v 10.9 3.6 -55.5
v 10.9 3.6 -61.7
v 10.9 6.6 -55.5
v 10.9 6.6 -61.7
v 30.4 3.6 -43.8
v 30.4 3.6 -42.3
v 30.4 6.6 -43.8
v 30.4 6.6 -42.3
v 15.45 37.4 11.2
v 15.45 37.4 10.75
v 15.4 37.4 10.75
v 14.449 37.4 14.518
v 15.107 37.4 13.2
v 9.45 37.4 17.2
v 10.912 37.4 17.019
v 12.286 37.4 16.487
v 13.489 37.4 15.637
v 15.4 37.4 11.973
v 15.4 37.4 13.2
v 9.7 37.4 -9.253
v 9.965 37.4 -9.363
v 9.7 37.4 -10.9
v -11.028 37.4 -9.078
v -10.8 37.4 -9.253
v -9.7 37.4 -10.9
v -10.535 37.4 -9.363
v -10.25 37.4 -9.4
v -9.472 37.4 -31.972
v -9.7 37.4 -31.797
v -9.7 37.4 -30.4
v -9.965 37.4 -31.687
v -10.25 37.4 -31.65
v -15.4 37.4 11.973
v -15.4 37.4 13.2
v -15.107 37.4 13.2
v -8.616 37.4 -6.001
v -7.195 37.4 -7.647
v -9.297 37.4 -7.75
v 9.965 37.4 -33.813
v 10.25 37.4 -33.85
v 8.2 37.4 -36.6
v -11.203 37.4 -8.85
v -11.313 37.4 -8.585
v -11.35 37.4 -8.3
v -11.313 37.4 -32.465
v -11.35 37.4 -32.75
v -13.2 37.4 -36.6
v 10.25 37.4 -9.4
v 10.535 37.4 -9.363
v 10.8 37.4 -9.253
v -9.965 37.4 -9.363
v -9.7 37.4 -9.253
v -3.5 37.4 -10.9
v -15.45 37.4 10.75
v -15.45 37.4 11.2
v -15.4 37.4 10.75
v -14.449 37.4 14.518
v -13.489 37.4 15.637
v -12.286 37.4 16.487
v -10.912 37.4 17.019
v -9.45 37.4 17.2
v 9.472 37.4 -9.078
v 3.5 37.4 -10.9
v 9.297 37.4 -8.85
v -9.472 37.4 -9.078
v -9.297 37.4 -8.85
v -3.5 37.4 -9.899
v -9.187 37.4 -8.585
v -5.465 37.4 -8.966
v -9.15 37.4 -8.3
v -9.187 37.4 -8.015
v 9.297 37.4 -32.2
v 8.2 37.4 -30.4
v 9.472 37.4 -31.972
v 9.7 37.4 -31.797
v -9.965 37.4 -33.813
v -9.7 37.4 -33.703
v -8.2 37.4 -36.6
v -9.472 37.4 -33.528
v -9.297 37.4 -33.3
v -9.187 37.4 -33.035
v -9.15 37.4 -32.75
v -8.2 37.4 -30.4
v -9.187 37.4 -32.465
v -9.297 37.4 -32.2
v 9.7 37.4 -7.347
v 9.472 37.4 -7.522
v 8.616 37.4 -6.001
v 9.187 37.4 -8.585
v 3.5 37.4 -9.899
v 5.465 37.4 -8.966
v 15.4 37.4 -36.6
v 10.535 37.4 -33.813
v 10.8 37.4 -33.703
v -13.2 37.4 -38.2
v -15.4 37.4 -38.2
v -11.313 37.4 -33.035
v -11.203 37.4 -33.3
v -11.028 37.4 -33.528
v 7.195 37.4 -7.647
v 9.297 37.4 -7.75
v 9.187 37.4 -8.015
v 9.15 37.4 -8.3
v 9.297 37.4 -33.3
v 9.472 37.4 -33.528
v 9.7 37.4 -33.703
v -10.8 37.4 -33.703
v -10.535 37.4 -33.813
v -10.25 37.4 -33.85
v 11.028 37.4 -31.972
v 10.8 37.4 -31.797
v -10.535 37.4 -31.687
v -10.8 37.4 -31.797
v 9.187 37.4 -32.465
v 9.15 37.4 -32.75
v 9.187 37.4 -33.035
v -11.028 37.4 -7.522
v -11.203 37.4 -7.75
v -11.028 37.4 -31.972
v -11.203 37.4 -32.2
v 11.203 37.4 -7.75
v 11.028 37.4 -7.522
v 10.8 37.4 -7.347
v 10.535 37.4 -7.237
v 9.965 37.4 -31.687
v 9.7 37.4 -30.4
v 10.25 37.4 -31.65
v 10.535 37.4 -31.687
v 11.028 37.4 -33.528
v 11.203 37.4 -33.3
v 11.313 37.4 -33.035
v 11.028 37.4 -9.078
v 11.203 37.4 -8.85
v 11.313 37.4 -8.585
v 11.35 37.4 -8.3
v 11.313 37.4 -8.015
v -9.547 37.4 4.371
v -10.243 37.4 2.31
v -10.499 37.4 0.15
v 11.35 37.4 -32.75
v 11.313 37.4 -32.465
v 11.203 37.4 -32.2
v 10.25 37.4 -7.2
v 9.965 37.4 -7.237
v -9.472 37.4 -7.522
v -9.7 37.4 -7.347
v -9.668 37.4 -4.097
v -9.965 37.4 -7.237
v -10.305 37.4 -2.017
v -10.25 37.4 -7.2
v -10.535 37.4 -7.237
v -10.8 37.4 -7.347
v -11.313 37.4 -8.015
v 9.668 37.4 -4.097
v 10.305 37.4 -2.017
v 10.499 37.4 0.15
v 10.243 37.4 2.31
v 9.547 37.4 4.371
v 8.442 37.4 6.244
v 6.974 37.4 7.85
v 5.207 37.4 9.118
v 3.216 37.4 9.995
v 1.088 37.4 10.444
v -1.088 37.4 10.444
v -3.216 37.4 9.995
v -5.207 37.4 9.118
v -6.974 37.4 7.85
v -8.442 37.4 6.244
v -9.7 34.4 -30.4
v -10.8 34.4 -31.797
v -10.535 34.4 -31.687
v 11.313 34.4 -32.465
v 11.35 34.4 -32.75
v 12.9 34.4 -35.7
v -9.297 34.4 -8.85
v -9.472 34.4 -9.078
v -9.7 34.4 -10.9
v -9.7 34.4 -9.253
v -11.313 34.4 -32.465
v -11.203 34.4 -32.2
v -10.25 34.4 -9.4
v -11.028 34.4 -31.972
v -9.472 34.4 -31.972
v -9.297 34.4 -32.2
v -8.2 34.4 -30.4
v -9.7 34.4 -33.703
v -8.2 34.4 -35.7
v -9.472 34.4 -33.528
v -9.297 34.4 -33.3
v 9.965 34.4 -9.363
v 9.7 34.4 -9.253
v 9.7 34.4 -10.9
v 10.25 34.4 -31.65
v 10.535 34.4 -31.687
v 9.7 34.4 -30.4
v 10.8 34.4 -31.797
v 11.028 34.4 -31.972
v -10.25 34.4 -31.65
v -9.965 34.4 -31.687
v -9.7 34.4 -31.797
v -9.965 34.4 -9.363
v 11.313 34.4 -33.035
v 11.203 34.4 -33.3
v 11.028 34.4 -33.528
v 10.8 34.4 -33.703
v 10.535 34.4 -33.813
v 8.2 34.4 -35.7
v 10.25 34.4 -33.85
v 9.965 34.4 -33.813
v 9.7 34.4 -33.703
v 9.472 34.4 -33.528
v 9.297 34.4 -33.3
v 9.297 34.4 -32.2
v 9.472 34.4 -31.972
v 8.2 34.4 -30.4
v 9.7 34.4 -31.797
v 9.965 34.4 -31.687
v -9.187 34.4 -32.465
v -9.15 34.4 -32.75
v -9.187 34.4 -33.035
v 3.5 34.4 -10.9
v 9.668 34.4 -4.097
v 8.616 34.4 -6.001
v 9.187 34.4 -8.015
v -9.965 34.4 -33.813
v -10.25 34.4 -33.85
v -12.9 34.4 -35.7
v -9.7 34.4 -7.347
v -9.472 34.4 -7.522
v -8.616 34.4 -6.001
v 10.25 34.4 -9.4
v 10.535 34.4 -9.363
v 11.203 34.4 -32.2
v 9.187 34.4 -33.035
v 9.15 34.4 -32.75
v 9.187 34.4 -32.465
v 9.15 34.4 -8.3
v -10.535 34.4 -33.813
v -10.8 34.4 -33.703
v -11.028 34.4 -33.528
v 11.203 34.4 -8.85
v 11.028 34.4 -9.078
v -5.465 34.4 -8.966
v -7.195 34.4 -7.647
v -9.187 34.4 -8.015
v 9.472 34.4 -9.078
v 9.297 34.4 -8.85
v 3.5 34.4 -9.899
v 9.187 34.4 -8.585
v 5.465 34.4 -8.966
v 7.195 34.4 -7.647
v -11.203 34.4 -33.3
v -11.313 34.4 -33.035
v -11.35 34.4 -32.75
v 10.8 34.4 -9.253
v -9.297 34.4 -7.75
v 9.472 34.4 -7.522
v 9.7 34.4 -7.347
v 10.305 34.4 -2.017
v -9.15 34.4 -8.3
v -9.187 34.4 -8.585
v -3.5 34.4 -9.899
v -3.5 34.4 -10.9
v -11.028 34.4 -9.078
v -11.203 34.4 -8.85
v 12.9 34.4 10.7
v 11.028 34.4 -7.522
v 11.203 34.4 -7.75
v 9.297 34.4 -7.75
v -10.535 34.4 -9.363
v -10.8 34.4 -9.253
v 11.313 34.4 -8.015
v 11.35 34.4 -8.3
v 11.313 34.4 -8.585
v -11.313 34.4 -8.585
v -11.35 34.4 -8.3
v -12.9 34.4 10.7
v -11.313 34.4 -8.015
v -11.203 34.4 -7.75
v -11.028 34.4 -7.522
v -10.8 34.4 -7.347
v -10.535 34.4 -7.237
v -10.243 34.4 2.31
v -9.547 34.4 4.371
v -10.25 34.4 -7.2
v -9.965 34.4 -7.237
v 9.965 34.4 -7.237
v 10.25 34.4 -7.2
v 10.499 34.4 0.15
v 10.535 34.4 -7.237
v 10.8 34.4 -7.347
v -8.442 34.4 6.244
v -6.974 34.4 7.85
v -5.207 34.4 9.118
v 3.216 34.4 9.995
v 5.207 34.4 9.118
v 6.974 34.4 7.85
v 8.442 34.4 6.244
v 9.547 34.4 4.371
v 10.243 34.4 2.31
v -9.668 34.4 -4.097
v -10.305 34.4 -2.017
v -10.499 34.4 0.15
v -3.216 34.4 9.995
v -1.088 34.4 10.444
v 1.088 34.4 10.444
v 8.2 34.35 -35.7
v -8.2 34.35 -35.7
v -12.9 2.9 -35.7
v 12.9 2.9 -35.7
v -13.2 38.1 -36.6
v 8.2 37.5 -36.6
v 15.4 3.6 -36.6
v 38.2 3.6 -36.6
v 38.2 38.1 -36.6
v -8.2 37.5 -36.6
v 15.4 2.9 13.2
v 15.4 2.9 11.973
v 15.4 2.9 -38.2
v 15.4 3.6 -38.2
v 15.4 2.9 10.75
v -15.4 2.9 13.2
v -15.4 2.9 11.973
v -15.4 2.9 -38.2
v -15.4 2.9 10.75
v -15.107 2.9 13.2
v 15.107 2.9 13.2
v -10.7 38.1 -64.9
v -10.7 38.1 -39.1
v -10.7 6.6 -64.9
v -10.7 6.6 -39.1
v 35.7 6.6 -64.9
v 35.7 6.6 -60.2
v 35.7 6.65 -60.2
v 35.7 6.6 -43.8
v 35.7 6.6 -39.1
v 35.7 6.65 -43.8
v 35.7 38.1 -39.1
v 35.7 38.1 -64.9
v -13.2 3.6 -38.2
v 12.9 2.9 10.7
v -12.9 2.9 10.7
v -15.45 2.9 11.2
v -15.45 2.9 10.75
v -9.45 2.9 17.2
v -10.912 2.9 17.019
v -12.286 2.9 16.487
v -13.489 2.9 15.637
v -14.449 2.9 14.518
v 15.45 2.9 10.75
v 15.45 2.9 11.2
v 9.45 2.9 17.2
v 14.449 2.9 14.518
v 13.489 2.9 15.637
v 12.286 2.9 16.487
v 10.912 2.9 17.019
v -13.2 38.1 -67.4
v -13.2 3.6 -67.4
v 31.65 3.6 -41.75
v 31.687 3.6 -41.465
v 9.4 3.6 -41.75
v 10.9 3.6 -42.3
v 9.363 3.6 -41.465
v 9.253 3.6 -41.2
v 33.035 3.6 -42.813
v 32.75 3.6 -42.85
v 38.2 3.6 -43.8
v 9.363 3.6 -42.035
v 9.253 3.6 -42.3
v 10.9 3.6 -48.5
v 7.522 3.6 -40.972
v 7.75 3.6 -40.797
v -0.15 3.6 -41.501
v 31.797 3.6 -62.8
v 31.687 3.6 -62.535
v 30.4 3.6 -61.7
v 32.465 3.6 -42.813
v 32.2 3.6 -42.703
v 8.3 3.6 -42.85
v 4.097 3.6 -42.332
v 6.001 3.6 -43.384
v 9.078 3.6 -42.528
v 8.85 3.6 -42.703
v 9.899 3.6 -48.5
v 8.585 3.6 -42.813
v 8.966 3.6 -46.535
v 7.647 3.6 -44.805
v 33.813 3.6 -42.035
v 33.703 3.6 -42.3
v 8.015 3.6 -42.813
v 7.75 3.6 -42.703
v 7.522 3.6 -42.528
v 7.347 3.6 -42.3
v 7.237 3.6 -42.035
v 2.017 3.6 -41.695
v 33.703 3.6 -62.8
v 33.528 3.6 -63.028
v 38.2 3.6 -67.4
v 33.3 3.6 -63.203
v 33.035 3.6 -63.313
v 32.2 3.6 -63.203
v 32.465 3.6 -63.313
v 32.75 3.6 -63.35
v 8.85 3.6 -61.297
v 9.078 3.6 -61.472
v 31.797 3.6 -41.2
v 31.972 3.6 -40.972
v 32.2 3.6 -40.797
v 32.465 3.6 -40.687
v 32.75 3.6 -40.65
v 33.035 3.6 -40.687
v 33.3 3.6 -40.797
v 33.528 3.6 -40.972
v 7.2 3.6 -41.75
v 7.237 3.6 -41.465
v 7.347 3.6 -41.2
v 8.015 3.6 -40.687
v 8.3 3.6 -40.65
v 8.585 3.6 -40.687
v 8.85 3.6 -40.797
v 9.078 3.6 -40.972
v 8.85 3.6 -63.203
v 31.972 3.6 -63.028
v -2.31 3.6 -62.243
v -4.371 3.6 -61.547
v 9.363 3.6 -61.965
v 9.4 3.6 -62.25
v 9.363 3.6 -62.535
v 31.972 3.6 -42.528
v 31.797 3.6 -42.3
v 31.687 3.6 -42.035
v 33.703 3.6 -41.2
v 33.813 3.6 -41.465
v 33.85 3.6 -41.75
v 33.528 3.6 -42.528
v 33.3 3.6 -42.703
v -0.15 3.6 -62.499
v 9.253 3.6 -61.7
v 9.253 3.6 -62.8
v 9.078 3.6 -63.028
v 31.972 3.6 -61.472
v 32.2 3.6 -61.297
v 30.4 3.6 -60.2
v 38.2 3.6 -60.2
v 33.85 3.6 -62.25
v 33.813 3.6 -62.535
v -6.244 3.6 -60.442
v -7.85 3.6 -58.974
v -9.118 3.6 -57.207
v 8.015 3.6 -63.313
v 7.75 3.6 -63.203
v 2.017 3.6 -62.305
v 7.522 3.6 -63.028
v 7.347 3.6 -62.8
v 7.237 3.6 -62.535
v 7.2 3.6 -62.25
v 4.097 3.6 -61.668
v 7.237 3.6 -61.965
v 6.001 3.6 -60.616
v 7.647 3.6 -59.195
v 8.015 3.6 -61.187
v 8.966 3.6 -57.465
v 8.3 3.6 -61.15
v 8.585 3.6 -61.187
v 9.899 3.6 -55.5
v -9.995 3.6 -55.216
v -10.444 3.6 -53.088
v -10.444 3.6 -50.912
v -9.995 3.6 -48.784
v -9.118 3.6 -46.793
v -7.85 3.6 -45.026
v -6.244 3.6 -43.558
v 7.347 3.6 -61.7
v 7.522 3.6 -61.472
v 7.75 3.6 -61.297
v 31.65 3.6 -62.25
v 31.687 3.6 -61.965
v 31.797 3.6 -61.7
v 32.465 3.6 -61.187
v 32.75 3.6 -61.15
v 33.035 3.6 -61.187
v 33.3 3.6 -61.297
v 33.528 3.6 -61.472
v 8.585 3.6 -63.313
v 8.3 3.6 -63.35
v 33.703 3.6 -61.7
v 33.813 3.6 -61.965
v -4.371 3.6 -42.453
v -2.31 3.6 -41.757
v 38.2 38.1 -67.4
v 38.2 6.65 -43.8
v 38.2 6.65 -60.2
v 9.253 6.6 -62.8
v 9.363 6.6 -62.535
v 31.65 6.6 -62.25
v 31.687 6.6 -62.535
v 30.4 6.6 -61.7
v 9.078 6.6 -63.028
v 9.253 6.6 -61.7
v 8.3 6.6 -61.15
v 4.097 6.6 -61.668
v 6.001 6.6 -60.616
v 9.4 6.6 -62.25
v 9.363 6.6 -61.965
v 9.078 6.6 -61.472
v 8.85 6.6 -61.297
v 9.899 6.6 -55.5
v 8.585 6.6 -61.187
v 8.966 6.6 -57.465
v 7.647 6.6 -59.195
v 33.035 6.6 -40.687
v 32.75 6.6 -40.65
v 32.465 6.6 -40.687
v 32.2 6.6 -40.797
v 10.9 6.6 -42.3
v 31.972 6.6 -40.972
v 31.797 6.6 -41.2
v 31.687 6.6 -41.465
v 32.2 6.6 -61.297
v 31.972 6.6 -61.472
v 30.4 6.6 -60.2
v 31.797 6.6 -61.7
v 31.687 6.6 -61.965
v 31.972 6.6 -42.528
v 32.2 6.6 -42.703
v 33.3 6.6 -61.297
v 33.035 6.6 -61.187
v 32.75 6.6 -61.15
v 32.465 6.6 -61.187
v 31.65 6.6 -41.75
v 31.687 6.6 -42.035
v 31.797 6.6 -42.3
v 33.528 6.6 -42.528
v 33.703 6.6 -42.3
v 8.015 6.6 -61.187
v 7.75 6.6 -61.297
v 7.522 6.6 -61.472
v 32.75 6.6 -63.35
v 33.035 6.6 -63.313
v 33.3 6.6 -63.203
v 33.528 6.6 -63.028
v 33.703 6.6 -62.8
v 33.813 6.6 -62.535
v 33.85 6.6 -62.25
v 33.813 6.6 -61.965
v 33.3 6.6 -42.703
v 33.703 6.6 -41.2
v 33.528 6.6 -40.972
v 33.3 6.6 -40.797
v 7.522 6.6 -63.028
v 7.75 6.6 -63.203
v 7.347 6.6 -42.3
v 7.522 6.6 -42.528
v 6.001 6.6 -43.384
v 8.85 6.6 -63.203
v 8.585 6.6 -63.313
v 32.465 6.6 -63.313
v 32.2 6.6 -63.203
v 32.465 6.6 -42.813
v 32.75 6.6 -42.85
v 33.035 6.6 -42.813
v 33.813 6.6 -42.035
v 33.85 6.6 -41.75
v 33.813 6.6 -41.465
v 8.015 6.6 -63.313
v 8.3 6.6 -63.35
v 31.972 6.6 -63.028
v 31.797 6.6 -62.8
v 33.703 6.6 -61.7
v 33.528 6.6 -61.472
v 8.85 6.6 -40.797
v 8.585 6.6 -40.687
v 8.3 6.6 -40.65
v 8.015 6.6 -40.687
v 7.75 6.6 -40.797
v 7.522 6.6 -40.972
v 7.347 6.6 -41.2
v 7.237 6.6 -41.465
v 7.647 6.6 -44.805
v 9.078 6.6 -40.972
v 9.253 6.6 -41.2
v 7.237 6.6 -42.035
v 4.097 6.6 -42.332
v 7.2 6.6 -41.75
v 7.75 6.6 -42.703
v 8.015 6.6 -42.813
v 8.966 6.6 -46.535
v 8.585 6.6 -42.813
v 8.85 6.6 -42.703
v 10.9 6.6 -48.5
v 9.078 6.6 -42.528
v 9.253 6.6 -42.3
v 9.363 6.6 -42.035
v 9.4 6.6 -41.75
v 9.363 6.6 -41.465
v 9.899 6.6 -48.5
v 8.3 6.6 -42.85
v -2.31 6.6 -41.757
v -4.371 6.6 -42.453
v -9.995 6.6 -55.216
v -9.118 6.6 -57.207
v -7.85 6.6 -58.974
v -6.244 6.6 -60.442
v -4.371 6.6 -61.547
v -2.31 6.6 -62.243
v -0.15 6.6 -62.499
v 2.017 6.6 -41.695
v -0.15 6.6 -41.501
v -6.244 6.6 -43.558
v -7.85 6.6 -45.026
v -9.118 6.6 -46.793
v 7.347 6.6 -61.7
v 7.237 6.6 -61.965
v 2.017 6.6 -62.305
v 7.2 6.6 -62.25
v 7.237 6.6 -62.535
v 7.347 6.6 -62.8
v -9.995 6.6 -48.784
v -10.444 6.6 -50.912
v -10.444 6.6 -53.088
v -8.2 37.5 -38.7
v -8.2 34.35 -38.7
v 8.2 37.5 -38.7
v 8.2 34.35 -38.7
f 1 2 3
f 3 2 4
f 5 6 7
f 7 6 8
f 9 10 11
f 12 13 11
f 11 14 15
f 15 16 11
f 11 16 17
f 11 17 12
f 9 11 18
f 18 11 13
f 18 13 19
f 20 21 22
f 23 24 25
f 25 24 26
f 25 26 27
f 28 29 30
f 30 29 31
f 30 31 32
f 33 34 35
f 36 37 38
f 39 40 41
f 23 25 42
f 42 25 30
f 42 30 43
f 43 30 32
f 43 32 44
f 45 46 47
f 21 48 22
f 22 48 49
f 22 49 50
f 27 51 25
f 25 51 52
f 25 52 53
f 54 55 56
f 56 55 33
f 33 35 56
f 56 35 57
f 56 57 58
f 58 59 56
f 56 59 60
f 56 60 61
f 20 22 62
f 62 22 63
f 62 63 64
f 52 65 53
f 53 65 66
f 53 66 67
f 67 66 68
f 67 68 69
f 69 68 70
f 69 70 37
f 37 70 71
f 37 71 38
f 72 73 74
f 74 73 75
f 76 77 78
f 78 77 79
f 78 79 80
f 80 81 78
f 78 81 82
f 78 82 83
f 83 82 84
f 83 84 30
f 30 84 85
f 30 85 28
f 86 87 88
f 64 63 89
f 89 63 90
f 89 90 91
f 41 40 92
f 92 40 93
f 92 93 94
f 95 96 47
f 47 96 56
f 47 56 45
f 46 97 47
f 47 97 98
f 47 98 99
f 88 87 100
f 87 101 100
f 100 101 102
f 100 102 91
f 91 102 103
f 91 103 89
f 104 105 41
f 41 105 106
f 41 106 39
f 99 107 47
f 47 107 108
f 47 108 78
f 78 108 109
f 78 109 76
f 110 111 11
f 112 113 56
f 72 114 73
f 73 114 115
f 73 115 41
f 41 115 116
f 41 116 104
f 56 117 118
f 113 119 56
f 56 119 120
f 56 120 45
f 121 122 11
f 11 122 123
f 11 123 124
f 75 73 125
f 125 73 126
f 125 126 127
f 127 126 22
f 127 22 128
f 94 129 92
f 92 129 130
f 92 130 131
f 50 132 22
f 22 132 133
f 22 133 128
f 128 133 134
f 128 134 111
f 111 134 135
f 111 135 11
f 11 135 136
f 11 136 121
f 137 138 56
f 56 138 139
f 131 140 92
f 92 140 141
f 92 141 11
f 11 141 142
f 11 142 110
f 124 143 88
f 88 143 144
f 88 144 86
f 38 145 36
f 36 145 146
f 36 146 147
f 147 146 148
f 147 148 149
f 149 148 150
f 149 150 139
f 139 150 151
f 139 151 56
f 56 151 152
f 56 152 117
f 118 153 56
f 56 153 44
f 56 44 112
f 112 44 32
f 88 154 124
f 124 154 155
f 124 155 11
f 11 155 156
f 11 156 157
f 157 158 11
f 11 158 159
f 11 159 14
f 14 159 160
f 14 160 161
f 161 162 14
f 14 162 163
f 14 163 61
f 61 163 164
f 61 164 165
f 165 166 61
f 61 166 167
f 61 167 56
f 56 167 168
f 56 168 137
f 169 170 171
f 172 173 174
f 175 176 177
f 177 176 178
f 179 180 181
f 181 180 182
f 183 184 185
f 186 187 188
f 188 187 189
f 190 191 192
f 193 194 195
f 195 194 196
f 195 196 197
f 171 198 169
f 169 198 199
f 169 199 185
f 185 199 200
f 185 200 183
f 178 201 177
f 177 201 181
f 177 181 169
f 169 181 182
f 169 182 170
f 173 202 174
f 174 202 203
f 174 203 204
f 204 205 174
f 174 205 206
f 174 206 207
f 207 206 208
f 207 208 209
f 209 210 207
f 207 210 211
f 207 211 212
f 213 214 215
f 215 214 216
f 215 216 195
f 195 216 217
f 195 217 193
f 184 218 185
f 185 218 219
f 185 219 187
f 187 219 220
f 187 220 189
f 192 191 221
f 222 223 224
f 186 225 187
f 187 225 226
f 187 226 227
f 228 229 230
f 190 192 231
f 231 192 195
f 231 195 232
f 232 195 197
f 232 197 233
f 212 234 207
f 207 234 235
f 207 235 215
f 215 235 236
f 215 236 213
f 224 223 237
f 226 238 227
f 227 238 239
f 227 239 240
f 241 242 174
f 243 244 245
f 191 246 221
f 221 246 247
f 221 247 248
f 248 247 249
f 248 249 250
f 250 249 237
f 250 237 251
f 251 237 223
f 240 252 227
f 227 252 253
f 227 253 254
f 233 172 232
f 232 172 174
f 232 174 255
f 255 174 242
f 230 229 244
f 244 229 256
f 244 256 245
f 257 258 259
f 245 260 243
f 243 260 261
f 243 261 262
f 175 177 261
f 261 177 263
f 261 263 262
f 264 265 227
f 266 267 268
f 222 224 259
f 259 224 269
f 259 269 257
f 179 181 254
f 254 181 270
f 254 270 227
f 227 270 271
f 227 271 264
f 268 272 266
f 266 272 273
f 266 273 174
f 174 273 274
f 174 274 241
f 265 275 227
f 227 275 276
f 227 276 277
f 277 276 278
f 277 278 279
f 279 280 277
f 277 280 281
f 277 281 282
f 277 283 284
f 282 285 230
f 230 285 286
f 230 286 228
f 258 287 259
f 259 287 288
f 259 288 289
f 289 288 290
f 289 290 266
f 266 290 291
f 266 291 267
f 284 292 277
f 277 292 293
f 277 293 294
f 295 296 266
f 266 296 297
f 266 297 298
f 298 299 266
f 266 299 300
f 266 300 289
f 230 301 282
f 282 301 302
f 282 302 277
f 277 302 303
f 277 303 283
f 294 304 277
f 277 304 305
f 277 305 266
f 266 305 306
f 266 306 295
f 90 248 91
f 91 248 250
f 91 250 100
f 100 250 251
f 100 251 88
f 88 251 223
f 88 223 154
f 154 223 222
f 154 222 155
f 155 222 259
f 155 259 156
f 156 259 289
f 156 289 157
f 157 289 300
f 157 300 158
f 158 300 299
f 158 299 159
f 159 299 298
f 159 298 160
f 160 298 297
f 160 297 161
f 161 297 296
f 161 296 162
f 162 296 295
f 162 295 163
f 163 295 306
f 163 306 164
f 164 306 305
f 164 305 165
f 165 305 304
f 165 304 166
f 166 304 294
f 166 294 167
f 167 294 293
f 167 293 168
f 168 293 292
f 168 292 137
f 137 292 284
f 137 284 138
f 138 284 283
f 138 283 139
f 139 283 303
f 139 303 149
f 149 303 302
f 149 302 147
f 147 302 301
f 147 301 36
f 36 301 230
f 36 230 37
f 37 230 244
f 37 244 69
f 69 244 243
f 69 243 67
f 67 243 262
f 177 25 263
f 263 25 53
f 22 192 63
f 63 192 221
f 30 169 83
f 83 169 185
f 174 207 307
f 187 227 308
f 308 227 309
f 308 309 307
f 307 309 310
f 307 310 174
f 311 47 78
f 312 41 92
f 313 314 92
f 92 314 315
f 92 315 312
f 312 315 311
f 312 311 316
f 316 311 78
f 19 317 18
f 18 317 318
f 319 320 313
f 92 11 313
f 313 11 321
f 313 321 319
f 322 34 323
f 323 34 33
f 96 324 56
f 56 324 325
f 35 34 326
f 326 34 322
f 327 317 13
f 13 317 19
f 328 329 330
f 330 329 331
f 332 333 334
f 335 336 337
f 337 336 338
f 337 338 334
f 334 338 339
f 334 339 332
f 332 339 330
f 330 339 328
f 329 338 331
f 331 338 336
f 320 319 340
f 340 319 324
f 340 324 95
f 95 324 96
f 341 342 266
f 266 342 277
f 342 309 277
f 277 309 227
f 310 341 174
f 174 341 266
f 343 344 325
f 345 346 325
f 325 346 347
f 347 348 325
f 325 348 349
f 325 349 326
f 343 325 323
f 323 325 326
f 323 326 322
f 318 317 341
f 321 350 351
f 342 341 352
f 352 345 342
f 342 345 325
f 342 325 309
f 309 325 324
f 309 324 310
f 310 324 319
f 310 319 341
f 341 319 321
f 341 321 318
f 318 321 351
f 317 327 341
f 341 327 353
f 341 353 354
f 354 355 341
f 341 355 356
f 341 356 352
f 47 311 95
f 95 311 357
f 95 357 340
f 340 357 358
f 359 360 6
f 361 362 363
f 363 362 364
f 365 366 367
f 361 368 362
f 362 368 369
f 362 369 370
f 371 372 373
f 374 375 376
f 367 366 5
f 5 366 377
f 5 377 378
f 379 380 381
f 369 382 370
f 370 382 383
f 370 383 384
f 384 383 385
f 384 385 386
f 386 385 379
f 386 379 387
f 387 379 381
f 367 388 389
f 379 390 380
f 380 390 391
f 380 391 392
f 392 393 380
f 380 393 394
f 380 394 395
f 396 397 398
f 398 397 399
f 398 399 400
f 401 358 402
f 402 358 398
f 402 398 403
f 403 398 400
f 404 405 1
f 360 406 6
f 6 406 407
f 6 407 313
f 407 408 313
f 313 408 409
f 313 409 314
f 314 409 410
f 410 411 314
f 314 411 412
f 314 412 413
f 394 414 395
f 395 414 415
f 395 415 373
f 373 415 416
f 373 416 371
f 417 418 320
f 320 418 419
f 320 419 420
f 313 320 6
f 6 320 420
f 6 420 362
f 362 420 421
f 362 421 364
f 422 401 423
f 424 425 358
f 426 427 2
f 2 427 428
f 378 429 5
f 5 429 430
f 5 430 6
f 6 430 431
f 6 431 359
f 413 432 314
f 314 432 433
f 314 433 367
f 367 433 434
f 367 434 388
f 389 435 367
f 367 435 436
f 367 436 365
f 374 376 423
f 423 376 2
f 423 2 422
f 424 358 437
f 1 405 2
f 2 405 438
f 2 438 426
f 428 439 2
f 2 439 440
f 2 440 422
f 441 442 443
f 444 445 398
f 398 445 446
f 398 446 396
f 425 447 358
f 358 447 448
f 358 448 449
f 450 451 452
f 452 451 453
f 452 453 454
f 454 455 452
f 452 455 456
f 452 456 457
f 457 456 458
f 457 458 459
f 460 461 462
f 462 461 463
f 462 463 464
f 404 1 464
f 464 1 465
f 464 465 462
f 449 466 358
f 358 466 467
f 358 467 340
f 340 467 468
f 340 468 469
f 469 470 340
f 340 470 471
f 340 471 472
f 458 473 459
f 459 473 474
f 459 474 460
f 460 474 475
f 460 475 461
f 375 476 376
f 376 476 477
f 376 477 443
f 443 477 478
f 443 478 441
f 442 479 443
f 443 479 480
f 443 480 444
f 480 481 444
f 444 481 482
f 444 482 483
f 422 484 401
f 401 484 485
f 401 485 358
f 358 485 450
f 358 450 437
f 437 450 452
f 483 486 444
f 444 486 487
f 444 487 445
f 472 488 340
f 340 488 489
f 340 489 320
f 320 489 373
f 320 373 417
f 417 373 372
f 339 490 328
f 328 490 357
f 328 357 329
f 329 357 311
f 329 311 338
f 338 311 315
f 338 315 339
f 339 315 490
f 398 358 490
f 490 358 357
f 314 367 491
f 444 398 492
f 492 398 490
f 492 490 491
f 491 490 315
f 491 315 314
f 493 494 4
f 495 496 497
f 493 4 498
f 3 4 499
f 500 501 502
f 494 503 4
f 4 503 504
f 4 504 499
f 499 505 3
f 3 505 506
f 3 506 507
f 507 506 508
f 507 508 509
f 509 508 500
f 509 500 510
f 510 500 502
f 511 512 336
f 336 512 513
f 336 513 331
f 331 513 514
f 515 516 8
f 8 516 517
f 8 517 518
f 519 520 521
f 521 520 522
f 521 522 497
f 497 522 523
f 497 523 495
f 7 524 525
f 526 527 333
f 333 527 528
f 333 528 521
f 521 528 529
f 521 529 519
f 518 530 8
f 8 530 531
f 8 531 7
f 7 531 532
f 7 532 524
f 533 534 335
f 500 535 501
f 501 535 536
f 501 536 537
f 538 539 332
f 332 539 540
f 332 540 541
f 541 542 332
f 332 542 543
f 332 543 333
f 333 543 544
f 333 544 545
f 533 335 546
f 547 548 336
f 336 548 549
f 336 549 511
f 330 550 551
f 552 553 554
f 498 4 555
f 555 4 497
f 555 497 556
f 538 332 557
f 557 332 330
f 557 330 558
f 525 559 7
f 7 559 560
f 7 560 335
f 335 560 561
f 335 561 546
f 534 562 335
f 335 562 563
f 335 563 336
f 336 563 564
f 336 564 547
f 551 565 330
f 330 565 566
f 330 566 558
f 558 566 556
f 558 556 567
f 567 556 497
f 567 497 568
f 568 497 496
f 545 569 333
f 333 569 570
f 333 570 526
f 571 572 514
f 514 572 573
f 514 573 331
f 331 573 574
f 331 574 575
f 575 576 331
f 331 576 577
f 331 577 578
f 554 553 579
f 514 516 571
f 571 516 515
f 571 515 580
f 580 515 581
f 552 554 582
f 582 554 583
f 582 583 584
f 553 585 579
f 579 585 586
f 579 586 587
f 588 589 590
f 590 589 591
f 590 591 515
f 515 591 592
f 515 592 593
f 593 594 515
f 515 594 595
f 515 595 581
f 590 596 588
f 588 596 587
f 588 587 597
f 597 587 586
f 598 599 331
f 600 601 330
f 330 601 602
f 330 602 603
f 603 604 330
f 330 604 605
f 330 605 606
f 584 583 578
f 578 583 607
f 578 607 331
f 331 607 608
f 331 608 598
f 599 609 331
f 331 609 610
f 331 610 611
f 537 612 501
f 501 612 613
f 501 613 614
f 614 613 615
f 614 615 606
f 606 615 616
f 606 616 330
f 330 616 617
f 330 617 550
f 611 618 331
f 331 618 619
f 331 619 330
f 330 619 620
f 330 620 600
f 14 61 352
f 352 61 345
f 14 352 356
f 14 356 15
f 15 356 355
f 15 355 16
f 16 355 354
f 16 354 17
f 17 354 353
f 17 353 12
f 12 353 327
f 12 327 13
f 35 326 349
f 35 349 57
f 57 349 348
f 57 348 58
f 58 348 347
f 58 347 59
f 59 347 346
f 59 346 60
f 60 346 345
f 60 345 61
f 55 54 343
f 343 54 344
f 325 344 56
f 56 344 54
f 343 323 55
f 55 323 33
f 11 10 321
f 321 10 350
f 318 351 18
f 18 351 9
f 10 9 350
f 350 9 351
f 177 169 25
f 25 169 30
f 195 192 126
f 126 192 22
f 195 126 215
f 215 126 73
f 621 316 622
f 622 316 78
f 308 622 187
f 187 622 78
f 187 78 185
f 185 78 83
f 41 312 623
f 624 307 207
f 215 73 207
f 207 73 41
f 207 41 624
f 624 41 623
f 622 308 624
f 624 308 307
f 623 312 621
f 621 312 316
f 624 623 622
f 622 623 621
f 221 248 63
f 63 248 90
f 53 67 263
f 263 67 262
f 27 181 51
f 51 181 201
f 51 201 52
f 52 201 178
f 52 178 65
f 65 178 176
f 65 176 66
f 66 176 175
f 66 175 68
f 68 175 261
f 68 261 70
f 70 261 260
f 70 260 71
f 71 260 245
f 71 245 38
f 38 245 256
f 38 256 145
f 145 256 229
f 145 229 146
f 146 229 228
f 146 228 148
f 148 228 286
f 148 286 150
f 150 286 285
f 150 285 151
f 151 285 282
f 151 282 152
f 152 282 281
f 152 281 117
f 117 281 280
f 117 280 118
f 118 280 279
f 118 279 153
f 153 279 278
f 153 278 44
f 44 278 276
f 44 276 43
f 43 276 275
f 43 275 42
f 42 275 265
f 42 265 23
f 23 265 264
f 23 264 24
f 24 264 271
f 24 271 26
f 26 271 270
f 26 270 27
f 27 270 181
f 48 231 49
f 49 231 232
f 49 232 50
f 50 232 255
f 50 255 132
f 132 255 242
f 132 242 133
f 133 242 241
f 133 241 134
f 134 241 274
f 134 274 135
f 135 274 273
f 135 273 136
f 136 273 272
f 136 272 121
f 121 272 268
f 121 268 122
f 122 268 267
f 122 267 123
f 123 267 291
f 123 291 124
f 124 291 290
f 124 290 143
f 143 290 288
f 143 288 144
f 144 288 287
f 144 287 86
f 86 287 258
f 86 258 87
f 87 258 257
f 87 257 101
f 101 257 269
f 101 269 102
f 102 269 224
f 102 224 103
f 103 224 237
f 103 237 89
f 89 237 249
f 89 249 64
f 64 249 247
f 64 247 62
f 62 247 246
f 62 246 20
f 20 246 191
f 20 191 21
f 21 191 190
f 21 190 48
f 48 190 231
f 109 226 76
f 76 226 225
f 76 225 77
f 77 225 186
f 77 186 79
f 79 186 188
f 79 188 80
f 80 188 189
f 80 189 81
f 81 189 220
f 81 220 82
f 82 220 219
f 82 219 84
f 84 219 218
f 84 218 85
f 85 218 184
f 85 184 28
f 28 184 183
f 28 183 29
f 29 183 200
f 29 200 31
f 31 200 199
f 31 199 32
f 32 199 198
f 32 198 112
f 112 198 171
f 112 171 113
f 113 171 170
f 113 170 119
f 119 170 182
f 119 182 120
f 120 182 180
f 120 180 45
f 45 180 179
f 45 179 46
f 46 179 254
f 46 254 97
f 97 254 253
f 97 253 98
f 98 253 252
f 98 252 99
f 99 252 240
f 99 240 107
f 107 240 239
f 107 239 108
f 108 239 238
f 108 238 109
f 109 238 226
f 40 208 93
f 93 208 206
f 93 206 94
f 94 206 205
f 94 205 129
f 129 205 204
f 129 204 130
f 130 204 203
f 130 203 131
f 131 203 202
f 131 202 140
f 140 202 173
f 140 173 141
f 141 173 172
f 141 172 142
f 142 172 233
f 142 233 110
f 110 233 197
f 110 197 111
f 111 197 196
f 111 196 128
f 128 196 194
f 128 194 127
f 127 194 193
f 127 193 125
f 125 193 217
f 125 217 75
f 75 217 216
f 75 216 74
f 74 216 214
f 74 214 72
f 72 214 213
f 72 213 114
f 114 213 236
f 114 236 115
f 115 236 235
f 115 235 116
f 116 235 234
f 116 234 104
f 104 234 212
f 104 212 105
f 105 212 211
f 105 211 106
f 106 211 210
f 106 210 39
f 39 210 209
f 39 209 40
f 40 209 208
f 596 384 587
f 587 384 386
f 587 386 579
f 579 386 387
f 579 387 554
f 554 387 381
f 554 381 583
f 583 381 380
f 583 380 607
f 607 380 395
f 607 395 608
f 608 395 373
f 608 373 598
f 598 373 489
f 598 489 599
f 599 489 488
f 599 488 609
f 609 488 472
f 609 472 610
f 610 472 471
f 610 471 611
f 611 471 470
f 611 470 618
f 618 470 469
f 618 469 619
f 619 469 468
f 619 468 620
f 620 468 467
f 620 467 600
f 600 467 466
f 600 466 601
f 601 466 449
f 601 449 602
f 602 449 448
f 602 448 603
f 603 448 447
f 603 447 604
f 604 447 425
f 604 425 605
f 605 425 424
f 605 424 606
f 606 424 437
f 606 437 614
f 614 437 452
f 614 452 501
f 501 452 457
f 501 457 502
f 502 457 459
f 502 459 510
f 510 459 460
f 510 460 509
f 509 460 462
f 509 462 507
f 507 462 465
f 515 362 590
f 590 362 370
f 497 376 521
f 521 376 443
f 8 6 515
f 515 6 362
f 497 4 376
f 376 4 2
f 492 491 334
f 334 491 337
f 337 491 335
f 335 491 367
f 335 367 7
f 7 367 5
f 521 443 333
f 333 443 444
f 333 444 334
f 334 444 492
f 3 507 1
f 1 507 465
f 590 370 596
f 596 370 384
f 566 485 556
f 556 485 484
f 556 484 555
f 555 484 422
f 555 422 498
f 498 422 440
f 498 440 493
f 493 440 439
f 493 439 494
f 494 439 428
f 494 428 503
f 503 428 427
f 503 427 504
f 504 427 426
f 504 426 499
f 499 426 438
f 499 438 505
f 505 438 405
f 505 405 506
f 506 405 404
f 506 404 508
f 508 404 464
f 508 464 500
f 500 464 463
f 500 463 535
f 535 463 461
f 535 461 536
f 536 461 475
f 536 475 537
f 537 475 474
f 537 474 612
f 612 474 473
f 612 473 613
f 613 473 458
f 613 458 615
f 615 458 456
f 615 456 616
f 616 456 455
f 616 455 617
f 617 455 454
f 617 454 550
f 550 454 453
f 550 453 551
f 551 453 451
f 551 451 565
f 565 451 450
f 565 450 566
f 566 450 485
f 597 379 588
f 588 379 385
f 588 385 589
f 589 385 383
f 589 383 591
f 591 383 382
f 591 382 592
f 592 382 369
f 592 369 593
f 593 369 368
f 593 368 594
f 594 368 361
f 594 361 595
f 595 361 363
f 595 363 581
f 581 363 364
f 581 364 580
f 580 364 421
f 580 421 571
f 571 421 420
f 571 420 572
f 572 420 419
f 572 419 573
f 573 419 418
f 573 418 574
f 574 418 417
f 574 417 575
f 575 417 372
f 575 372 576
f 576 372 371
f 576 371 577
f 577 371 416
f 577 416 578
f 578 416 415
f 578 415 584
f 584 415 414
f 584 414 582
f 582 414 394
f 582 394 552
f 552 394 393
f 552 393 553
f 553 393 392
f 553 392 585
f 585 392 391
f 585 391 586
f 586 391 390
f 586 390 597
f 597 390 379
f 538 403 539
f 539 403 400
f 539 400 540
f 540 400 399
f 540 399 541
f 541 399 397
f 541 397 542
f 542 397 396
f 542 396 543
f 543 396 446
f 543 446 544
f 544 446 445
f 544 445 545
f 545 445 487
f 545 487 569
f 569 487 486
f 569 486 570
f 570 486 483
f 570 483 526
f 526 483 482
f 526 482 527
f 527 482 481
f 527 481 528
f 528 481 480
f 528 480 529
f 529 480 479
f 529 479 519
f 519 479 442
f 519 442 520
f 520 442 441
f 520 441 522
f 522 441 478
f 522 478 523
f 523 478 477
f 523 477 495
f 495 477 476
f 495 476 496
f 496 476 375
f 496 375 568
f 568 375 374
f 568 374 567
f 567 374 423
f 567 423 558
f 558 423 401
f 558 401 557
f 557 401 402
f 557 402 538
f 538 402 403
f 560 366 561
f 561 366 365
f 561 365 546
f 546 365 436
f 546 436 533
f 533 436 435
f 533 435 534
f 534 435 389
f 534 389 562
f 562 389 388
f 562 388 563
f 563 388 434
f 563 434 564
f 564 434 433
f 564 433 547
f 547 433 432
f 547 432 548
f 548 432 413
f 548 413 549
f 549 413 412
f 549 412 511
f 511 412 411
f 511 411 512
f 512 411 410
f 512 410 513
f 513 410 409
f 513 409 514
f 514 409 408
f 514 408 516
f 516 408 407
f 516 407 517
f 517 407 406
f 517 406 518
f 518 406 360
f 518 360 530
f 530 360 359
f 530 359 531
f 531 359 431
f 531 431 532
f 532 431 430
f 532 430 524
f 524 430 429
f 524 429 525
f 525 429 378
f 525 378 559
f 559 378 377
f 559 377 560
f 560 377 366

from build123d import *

# Parameters (mm, degrees)
S_BOX1_W        = 30.8
S_BOX1_H        = 34.5
BOSS_1_DEPTH    = 2.5
S_BOX2_W        = 30.8
S_BOX2_H        = 34.5
BOSS_2_DEPTH    = 2.5
S_BOX3_W        = 2.5
S_BOX3_H        = 34.5
BOSS_3_DEPTH    = 51.4
S_BOX4_W        = 2.5
S_BOX4_H        = 34.5
BOSS_4_DEPTH    = 51.4
S_BOX5_W        = 30.8
S_BOX5_H        = 3
BOSS_5_DEPTH    = 51.4
S_BOX6_W        = 2.5
S_BOX6_H        = 34.5
BOSS_6_DEPTH    = 30.8
S_BOX7_W        = 2.5
S_BOX7_H        = 34.5
BOSS_7_DEPTH    = 30.8
S_BOX8_W        = 51.4
S_BOX8_H        = 34.5
BOSS_8_DEPTH    = 2.5
S_BOX9_W        = 51.4
S_BOX9_H        = 34.5
BOSS_9_DEPTH    = 2.5
S_BOX10_W       = 51.4
S_BOX10_H       = 3
BOSS_10_DEPTH   = 30.8
BOSS_11_DEPTH   = 34.5
S_HOLE12_R      = 10.5
HOLE_12_DEPTH   = 3.2
S_CUT13_W       = 19.4
S_CUT13_H       = 3.15
POCKET_13_DEPTH = 19.5
S_CUT14_W       = 16.4
S_CUT14_H       = 3.15
POCKET_14_DEPTH = 8.3
S_CUT15_W       = 7
S_CUT15_H       = 3.15
POCKET_15_DEPTH = 11
S_HOLE16_R      = 1.1
HOLE_16_DEPTH   = 3.2
S_HOLE17_R      = 1.1
HOLE_17_DEPTH   = 3.2
S_HOLE18_R      = 1.1
HOLE_18_DEPTH   = 3.2
S_HOLE19_R      = 1.1
HOLE_19_DEPTH   = 3.2
S_HOLE20_R      = 10.5
HOLE_20_DEPTH   = 3.2
S_CUT21_W       = 19.5
S_CUT21_H       = 3.15
POCKET_21_DEPTH = 19.4
S_CUT22_W       = 8.3
S_CUT22_H       = 3.15
POCKET_22_DEPTH = 16.4
S_CUT23_W       = 11
S_CUT23_H       = 3.15
POCKET_23_DEPTH = 7
S_HOLE24_R      = 1.1
HOLE_24_DEPTH   = 3.2
S_HOLE25_R      = 1.1
HOLE_25_DEPTH   = 3.2
S_HOLE26_R      = 1.1
HOLE_26_DEPTH   = 3.2
S_HOLE27_R      = 1.1
HOLE_27_DEPTH   = 3.2


with BuildPart() as part:
    # S_box1 → Boss_1 (new body)
    with BuildSketch(Plane.XY.offset(-38.2)):
        with Locations((0, 20.15)):
            Rectangle(S_BOX1_W, S_BOX1_H)
    extrude(amount=BOSS_1_DEPTH)



with BuildPart() as body_2:
    # S_box2 → Boss_2 (new body)
    with BuildSketch(Plane.XY.offset(10.7)):
        with Locations((0, 20.15)):
            Rectangle(S_BOX2_W, S_BOX2_H)
    extrude(amount=BOSS_2_DEPTH)


with BuildPart() as part_1:
    add(part.part)

    add(body_2.part)  # Boss_3 merges body 2
    # S_box3 → Boss_3 (add)
    with BuildSketch(Plane.XY.offset(-38.2)):
        with Locations((-14.15, 20.15)):
            Rectangle(S_BOX3_W, S_BOX3_H)
    extrude(amount=BOSS_3_DEPTH)

    # S_box4 → Boss_4 (add)
    with BuildSketch(Plane.XY.offset(-38.2)):
        with Locations((14.15, 20.15)):
            Rectangle(S_BOX4_W, S_BOX4_H)
    extrude(amount=BOSS_4_DEPTH)

    # S_box5 → Boss_5 (add)
    with BuildSketch(Plane.XY.offset(-38.2)):
        with Locations((0, 35.9)):
            Rectangle(S_BOX5_W, S_BOX5_H)
    extrude(amount=BOSS_5_DEPTH)

    # S_box6 → Boss_6 (add)
    with BuildSketch(Plane.XY.offset(-67.4)):
        with Locations((-11.95, 20.85)):
            Rectangle(S_BOX6_W, S_BOX6_H)
    extrude(amount=BOSS_6_DEPTH)



with BuildPart() as body_2_2:
    # S_box7 → Boss_7 (new body)
    with BuildSketch(Plane.XY.offset(-67.4)):
        with Locations((36.95, 20.85)):
            Rectangle(S_BOX7_W, S_BOX7_H)
    extrude(amount=BOSS_7_DEPTH)


with BuildPart() as part_2:
    add(part_1.part)

    add(body_2_2.part)  # Boss_8 merges body 2 2
    # S_box8 → Boss_8 (add)
    with BuildSketch(Plane.XY.offset(-67.4)):
        with Locations((12.5, 20.85)):
            Rectangle(S_BOX8_W, S_BOX8_H)
    extrude(amount=BOSS_8_DEPTH)

    # S_box9 → Boss_9 (add)
    with BuildSketch(Plane.XY.offset(-39.1)):
        with Locations((12.5, 20.85)):
            Rectangle(S_BOX9_W, S_BOX9_H)
    extrude(amount=BOSS_9_DEPTH)

    # S_box10 → Boss_10 (add)
    with BuildSketch(Plane.XY.offset(-67.4)):
        with Locations((12.5, 5.1)):
            Rectangle(S_BOX10_W, S_BOX10_H)
    extrude(amount=BOSS_10_DEPTH)

    # S_prism11 → Boss_11 (add)
    with BuildSketch(Plane(origin=(0, 2.9, 0), x_dir=(1, 0, 0), z_dir=(0, 1, 0))):
        with BuildLine():
            Line((-15.45, -10.75), (15.45, -10.75))
            Line((15.45, -10.75), (15.45, -11.2))
            ThreePointArc((15.45, -11.2), (13.6926, -15.4426), (9.45, -17.2))
            Line((9.45, -17.2), (-9.45, -17.2))
            ThreePointArc((-9.45, -17.2), (-13.6926, -15.4426), (-15.45, -11.2))
            Line((-15.45, -11.2), (-15.45, -10.75))
        make_face()
    extrude(amount=BOSS_11_DEPTH)

    # S_hole12 → Hole_12 (cut)
    with BuildSketch(Plane(origin=(0, 34.3, 0), x_dir=(1, 0, 0), z_dir=(0, 1, 0))):
        with Locations(Location((0, 0, 0), (0, 0, 90))):
            Circle(S_HOLE12_R)
    extrude(amount=HOLE_12_DEPTH, mode=Mode.SUBTRACT)

    # S_cut13 → Pocket_13 (cut)
    with BuildSketch(Plane.XY.offset(-30.4)):
        with Locations((0, 35.925)):
            Rectangle(S_CUT13_W, S_CUT13_H)
    extrude(amount=POCKET_13_DEPTH, mode=Mode.SUBTRACT)

    # S_cut14 → Pocket_14 (cut)
    with BuildSketch(Plane.XY.offset(-38.7)):
        with Locations((0, 35.925)):
            Rectangle(S_CUT14_W, S_CUT14_H)
    extrude(amount=POCKET_14_DEPTH, mode=Mode.SUBTRACT)

    # S_cut15 → Pocket_15 (cut)
    with BuildSketch(Plane.XY.offset(-11)):
        with Locations((0, 35.925)):
            Rectangle(S_CUT15_W, S_CUT15_H)
    extrude(amount=POCKET_15_DEPTH, mode=Mode.SUBTRACT)

    # S_hole16 → Hole_16 (cut)
    with BuildSketch(Plane(origin=(0, 34.3, 0), x_dir=(1, 0, 0), z_dir=(0, 1, 0))):
        with Locations(Location((-10.25, 8.3, 0), (0, 0, 90))):
            Circle(S_HOLE16_R)
    extrude(amount=HOLE_16_DEPTH, mode=Mode.SUBTRACT)

    # S_hole17 → Hole_17 (cut)
    with BuildSketch(Plane(origin=(0, 34.3, 0), x_dir=(1, 0, 0), z_dir=(0, 1, 0))):
        with Locations(Location((10.25, 8.3, 0), (0, 0, 90))):
            Circle(S_HOLE17_R)
    extrude(amount=HOLE_17_DEPTH, mode=Mode.SUBTRACT)

    # S_hole18 → Hole_18 (cut)
    with BuildSketch(Plane(origin=(0, 34.3, 0), x_dir=(1, 0, 0), z_dir=(0, 1, 0))):
        with Locations(Location((-10.25, 32.75, 0), (0, 0, 90))):
            Circle(S_HOLE18_R)
    extrude(amount=HOLE_18_DEPTH, mode=Mode.SUBTRACT)

    # S_hole19 → Hole_19 (cut)
    with BuildSketch(Plane(origin=(0, 34.3, 0), x_dir=(1, 0, 0), z_dir=(0, 1, 0))):
        with Locations(Location((10.25, 32.75, 0), (0, 0, 90))):
            Circle(S_HOLE19_R)
    extrude(amount=HOLE_19_DEPTH, mode=Mode.SUBTRACT)

    # S_hole20 → Hole_20 (cut)
    with BuildSketch(Plane(origin=(0, 3.5, 0), x_dir=(1, 0, 0), z_dir=(0, 1, 0))):
        with Locations(Location((0, 52, 0), (0, 0, 90))):
            Circle(S_HOLE20_R)
    extrude(amount=HOLE_20_DEPTH, mode=Mode.SUBTRACT)

    # S_cut21 → Pocket_21 (cut)
    with BuildSketch(Plane.XY.offset(-61.7)):
        with Locations((20.65, 5.075)):
            Rectangle(S_CUT21_W, S_CUT21_H)
    extrude(amount=POCKET_21_DEPTH, mode=Mode.SUBTRACT)

    # S_cut22 → Pocket_22 (cut)
    with BuildSketch(Plane.XY.offset(-60.2)):
        with Locations((34.55, 5.075)):
            Rectangle(S_CUT22_W, S_CUT22_H)
    extrude(amount=POCKET_22_DEPTH, mode=Mode.SUBTRACT)

    # S_cut23 → Pocket_23 (cut)
    with BuildSketch(Plane.XY.offset(-55.5)):
        with Locations((5.5, 5.075)):
            Rectangle(S_CUT23_W, S_CUT23_H)
    extrude(amount=POCKET_23_DEPTH, mode=Mode.SUBTRACT)

    # S_hole24 → Hole_24 (cut)
    with BuildSketch(Plane(origin=(0, 3.5, 0), x_dir=(1, 0, 0), z_dir=(0, 1, 0))):
        with Locations(Location((8.3, 62.25, 0), (0, 0, 90))):
            Circle(S_HOLE24_R)
    extrude(amount=HOLE_24_DEPTH, mode=Mode.SUBTRACT)

    # S_hole25 → Hole_25 (cut)
    with BuildSketch(Plane(origin=(0, 3.5, 0), x_dir=(1, 0, 0), z_dir=(0, 1, 0))):
        with Locations(Location((8.3, 41.75, 0), (0, 0, 90))):
            Circle(S_HOLE25_R)
    extrude(amount=HOLE_25_DEPTH, mode=Mode.SUBTRACT)

    # S_hole26 → Hole_26 (cut)
    with BuildSketch(Plane(origin=(0, 3.5, 0), x_dir=(1, 0, 0), z_dir=(0, 1, 0))):
        with Locations(Location((32.75, 62.25, 0), (0, 0, 90))):
            Circle(S_HOLE26_R)
    extrude(amount=HOLE_26_DEPTH, mode=Mode.SUBTRACT)

    # S_hole27 → Hole_27 (cut)
    with BuildSketch(Plane(origin=(0, 3.5, 0), x_dir=(1, 0, 0), z_dir=(0, 1, 0))):
        with Locations(Location((32.75, 41.75, 0), (0, 0, 90))):
            Circle(S_HOLE27_R)
    extrude(amount=HOLE_27_DEPTH, mode=Mode.SUBTRACT)


solid = part_2.part
